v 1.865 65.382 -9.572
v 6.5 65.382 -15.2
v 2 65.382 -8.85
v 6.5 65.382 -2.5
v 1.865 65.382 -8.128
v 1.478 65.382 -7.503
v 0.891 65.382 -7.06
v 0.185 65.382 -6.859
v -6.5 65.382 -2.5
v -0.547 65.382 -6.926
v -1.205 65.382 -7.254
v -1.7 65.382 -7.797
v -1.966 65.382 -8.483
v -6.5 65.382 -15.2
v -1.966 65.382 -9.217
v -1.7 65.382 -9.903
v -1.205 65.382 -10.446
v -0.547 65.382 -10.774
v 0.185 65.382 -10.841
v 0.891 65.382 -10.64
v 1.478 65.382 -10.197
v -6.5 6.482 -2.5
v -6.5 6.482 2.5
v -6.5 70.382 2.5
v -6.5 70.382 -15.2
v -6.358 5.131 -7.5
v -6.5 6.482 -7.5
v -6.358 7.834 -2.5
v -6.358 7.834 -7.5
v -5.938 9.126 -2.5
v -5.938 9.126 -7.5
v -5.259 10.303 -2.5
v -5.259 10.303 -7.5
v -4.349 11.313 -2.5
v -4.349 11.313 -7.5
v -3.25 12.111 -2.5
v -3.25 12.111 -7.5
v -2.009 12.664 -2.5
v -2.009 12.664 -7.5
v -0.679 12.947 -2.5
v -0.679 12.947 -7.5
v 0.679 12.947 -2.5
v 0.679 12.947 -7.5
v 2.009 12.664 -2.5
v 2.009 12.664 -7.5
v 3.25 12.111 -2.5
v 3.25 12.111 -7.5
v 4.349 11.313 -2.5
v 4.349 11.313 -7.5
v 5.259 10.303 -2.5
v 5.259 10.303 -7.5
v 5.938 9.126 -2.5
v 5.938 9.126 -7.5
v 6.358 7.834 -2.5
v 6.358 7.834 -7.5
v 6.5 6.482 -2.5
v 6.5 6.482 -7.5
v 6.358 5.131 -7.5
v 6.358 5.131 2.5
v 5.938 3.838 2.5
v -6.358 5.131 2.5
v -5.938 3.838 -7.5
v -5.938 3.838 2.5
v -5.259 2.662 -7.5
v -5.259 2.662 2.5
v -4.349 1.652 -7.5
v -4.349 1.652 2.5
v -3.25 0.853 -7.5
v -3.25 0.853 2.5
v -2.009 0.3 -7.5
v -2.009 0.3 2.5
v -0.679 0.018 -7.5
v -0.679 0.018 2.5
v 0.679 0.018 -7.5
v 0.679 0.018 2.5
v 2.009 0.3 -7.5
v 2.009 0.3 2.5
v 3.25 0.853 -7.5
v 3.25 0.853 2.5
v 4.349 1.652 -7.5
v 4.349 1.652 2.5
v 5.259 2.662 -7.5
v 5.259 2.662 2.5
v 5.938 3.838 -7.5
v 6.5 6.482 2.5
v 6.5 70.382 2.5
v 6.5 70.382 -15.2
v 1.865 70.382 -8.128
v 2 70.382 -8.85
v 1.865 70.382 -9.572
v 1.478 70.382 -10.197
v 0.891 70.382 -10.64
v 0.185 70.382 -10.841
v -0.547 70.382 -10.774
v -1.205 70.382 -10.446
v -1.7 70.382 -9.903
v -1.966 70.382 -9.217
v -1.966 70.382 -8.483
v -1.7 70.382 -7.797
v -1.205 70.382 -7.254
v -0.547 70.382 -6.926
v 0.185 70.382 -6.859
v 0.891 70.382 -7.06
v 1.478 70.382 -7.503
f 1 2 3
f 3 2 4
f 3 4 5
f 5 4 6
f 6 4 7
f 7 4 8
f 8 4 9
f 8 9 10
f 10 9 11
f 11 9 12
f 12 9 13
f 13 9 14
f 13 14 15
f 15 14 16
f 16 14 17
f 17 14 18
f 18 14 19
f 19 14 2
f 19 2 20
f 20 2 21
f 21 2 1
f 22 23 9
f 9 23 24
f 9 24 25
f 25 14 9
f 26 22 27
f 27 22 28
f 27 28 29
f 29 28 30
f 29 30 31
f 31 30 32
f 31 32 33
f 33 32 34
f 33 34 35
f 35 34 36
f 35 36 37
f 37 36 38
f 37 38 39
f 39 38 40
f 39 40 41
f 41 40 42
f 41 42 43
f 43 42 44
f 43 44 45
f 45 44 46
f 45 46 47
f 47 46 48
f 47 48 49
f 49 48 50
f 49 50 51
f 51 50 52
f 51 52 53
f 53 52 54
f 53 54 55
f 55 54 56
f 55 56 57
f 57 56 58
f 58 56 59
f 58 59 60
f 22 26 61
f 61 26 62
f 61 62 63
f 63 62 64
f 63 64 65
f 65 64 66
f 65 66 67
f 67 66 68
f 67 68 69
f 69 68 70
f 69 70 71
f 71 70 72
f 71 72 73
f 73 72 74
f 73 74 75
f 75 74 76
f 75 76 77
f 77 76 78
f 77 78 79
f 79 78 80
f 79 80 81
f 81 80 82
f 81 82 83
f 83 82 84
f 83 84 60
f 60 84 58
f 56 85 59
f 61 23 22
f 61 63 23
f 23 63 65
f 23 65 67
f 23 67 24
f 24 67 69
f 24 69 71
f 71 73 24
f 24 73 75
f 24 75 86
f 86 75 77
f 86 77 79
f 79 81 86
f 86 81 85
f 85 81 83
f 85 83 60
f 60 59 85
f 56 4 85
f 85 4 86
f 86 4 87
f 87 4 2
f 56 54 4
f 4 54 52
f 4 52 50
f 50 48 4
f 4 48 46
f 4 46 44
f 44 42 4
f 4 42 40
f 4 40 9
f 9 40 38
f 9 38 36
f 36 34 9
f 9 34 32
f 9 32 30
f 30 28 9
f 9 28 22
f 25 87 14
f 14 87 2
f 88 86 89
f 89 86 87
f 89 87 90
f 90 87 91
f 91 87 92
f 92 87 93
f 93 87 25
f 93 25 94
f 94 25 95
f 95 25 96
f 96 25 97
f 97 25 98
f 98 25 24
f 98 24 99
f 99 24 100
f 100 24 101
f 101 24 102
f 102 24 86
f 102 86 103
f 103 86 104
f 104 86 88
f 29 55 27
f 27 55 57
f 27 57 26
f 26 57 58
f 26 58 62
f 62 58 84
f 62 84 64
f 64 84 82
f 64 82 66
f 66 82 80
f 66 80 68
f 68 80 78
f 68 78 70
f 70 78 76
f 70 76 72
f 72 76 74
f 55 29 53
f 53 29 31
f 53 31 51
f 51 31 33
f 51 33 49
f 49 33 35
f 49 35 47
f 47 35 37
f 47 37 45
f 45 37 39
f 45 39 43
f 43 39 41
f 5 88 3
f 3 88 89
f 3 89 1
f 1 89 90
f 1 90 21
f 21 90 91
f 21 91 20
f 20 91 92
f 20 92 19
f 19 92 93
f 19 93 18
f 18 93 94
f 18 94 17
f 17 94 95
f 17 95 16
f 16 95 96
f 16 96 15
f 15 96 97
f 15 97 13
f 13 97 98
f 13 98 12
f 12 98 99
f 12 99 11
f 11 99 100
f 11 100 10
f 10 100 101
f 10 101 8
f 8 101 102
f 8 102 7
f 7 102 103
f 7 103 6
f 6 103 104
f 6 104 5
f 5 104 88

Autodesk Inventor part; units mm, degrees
ref_plane "YZ Plane" through (0, 0, 0) normal (1, 0, 0) x (0, 1, 0)
ref_plane "XZ Plane" through (0, 0, 0) normal (0, 1, 0) x (-1, 0, 0)
ref_plane "XY Plane" through (0, 0, 0) normal (0, 0, 1) x (1, 0, 0)
sketch "Sketch1" plane through (0, 0, 0) normal (0, 1, 0) x (-1, 0, 0)
  line L0 (-6.5, -2.5) -> (6.5, -2.5)
  line L1 (6.5, -2.5) -> (6.5, 2.5)
  line L2 (6.5, 2.5) -> (-6.5, 2.5)
  line L3 (-6.5, 2.5) -> (-6.5, -2.5)
  line L4 (-6.5, -2.5) -> (6.5, 2.5) construction
  line L5 (6.5, -2.5) -> (-6.5, 2.5) construction
  point P0 (0, 0)
  dimension "d0" = 13
  dimension "d1" = 5
extrude "Extrusion1" add sketch "Sketch1" along normal blind 70.4
sketch "Sketch2" plane through (0, 70.4, 0) normal (0, 1, 0) x (1, 0, 0)
  line L0 (6.5, 2.5) -> (6.5, -2.5) projected
  line L1 (6.5, -2.5) -> (-6.5, -2.5) projected
  line L2 (-6.5, -2.5) -> (-6.5, 2.5) projected
  line L3 (-6.5, 2.5) -> (6.5, 2.5) projected
  line L4 (-6.5, -2.5) -> (6.5, -2.5)
  line L5 (6.5, -2.5) -> (6.5, 15.2)
  line L6 (6.5, 15.2) -> (-6.5, 15.2)
  line L7 (-6.5, 15.2) -> (-6.5, -2.5)
  point P0 (0, 0)
  dimension "d4" = 17.7
extrude "Extrusion2" add sketch "Sketch2" against normal blind 5 contours L3 L7 L6 L5
fillet "Fillet1" radius 6.5 2 edges at (6.5, 0, 0) (-6.5, 0, 0)
sketch "Sketch3" plane through (6.5, 65.4, -2.5) normal (0, 0, -1) x (-1, 0, 0)
  arc A0 (0, -58.9) -> (13, -58.9) centre (6.5, -58.9) ccw projected
  line L0 (0, -58.9) -> (0, 0) projected
  line L1 (0, 0) -> (0, 5) projected
  line L2 (0, 5) -> (13, 5) projected
  line L3 (13, 5) -> (13, 0) projected
  line L4 (13, 0) -> (13, -58.9) projected
  line L5 (13, 0) -> (0, 0) projected
  circle A1 centre (6.5, -58.9) radius 6.5
  point P0 (6.5, -65.4)
extrude "Extrusion3" add sketch "Sketch3" along normal blind 5 contours A1 A0
sketch "Sketch4" plane through (0, 70.4, 0) normal (0, 1, 0) x (1, 0, 0)
  line L0 (6.5, -2.5) -> (-6.5, -2.5) projected
  line L1 (-6.5, -2.5) -> (-6.5, 15.2) projected
  line L2 (-6.5, 15.2) -> (6.5, 15.2) projected
  line L3 (6.5, 15.2) -> (6.5, -2.5) projected
  line L4 (6.5, -2.5) -> (-6.5, -2.5) projected
  line L5 (-6.5, -2.5) -> (-6.5, 15.2) projected
  line L6 (-6.5, 15.2) -> (6.5, 15.2) projected
  line L7 (6.5, 15.2) -> (6.5, -2.5) projected
  line L8 (-6.5, 2.5) -> (6.5, 2.5) projected
  circle A0 centre (0, 8.85) radius 2
  point P0 (0, 0)
  dimension "d10" = 4
  dimension "d11" = 6.35
  dimension "d12" = 6.5
extrude "Extrusion4" cut sketch "Sketch4" against normal up to surface (5 mm away) contours A0
properties part number "terminal_mount_front"
